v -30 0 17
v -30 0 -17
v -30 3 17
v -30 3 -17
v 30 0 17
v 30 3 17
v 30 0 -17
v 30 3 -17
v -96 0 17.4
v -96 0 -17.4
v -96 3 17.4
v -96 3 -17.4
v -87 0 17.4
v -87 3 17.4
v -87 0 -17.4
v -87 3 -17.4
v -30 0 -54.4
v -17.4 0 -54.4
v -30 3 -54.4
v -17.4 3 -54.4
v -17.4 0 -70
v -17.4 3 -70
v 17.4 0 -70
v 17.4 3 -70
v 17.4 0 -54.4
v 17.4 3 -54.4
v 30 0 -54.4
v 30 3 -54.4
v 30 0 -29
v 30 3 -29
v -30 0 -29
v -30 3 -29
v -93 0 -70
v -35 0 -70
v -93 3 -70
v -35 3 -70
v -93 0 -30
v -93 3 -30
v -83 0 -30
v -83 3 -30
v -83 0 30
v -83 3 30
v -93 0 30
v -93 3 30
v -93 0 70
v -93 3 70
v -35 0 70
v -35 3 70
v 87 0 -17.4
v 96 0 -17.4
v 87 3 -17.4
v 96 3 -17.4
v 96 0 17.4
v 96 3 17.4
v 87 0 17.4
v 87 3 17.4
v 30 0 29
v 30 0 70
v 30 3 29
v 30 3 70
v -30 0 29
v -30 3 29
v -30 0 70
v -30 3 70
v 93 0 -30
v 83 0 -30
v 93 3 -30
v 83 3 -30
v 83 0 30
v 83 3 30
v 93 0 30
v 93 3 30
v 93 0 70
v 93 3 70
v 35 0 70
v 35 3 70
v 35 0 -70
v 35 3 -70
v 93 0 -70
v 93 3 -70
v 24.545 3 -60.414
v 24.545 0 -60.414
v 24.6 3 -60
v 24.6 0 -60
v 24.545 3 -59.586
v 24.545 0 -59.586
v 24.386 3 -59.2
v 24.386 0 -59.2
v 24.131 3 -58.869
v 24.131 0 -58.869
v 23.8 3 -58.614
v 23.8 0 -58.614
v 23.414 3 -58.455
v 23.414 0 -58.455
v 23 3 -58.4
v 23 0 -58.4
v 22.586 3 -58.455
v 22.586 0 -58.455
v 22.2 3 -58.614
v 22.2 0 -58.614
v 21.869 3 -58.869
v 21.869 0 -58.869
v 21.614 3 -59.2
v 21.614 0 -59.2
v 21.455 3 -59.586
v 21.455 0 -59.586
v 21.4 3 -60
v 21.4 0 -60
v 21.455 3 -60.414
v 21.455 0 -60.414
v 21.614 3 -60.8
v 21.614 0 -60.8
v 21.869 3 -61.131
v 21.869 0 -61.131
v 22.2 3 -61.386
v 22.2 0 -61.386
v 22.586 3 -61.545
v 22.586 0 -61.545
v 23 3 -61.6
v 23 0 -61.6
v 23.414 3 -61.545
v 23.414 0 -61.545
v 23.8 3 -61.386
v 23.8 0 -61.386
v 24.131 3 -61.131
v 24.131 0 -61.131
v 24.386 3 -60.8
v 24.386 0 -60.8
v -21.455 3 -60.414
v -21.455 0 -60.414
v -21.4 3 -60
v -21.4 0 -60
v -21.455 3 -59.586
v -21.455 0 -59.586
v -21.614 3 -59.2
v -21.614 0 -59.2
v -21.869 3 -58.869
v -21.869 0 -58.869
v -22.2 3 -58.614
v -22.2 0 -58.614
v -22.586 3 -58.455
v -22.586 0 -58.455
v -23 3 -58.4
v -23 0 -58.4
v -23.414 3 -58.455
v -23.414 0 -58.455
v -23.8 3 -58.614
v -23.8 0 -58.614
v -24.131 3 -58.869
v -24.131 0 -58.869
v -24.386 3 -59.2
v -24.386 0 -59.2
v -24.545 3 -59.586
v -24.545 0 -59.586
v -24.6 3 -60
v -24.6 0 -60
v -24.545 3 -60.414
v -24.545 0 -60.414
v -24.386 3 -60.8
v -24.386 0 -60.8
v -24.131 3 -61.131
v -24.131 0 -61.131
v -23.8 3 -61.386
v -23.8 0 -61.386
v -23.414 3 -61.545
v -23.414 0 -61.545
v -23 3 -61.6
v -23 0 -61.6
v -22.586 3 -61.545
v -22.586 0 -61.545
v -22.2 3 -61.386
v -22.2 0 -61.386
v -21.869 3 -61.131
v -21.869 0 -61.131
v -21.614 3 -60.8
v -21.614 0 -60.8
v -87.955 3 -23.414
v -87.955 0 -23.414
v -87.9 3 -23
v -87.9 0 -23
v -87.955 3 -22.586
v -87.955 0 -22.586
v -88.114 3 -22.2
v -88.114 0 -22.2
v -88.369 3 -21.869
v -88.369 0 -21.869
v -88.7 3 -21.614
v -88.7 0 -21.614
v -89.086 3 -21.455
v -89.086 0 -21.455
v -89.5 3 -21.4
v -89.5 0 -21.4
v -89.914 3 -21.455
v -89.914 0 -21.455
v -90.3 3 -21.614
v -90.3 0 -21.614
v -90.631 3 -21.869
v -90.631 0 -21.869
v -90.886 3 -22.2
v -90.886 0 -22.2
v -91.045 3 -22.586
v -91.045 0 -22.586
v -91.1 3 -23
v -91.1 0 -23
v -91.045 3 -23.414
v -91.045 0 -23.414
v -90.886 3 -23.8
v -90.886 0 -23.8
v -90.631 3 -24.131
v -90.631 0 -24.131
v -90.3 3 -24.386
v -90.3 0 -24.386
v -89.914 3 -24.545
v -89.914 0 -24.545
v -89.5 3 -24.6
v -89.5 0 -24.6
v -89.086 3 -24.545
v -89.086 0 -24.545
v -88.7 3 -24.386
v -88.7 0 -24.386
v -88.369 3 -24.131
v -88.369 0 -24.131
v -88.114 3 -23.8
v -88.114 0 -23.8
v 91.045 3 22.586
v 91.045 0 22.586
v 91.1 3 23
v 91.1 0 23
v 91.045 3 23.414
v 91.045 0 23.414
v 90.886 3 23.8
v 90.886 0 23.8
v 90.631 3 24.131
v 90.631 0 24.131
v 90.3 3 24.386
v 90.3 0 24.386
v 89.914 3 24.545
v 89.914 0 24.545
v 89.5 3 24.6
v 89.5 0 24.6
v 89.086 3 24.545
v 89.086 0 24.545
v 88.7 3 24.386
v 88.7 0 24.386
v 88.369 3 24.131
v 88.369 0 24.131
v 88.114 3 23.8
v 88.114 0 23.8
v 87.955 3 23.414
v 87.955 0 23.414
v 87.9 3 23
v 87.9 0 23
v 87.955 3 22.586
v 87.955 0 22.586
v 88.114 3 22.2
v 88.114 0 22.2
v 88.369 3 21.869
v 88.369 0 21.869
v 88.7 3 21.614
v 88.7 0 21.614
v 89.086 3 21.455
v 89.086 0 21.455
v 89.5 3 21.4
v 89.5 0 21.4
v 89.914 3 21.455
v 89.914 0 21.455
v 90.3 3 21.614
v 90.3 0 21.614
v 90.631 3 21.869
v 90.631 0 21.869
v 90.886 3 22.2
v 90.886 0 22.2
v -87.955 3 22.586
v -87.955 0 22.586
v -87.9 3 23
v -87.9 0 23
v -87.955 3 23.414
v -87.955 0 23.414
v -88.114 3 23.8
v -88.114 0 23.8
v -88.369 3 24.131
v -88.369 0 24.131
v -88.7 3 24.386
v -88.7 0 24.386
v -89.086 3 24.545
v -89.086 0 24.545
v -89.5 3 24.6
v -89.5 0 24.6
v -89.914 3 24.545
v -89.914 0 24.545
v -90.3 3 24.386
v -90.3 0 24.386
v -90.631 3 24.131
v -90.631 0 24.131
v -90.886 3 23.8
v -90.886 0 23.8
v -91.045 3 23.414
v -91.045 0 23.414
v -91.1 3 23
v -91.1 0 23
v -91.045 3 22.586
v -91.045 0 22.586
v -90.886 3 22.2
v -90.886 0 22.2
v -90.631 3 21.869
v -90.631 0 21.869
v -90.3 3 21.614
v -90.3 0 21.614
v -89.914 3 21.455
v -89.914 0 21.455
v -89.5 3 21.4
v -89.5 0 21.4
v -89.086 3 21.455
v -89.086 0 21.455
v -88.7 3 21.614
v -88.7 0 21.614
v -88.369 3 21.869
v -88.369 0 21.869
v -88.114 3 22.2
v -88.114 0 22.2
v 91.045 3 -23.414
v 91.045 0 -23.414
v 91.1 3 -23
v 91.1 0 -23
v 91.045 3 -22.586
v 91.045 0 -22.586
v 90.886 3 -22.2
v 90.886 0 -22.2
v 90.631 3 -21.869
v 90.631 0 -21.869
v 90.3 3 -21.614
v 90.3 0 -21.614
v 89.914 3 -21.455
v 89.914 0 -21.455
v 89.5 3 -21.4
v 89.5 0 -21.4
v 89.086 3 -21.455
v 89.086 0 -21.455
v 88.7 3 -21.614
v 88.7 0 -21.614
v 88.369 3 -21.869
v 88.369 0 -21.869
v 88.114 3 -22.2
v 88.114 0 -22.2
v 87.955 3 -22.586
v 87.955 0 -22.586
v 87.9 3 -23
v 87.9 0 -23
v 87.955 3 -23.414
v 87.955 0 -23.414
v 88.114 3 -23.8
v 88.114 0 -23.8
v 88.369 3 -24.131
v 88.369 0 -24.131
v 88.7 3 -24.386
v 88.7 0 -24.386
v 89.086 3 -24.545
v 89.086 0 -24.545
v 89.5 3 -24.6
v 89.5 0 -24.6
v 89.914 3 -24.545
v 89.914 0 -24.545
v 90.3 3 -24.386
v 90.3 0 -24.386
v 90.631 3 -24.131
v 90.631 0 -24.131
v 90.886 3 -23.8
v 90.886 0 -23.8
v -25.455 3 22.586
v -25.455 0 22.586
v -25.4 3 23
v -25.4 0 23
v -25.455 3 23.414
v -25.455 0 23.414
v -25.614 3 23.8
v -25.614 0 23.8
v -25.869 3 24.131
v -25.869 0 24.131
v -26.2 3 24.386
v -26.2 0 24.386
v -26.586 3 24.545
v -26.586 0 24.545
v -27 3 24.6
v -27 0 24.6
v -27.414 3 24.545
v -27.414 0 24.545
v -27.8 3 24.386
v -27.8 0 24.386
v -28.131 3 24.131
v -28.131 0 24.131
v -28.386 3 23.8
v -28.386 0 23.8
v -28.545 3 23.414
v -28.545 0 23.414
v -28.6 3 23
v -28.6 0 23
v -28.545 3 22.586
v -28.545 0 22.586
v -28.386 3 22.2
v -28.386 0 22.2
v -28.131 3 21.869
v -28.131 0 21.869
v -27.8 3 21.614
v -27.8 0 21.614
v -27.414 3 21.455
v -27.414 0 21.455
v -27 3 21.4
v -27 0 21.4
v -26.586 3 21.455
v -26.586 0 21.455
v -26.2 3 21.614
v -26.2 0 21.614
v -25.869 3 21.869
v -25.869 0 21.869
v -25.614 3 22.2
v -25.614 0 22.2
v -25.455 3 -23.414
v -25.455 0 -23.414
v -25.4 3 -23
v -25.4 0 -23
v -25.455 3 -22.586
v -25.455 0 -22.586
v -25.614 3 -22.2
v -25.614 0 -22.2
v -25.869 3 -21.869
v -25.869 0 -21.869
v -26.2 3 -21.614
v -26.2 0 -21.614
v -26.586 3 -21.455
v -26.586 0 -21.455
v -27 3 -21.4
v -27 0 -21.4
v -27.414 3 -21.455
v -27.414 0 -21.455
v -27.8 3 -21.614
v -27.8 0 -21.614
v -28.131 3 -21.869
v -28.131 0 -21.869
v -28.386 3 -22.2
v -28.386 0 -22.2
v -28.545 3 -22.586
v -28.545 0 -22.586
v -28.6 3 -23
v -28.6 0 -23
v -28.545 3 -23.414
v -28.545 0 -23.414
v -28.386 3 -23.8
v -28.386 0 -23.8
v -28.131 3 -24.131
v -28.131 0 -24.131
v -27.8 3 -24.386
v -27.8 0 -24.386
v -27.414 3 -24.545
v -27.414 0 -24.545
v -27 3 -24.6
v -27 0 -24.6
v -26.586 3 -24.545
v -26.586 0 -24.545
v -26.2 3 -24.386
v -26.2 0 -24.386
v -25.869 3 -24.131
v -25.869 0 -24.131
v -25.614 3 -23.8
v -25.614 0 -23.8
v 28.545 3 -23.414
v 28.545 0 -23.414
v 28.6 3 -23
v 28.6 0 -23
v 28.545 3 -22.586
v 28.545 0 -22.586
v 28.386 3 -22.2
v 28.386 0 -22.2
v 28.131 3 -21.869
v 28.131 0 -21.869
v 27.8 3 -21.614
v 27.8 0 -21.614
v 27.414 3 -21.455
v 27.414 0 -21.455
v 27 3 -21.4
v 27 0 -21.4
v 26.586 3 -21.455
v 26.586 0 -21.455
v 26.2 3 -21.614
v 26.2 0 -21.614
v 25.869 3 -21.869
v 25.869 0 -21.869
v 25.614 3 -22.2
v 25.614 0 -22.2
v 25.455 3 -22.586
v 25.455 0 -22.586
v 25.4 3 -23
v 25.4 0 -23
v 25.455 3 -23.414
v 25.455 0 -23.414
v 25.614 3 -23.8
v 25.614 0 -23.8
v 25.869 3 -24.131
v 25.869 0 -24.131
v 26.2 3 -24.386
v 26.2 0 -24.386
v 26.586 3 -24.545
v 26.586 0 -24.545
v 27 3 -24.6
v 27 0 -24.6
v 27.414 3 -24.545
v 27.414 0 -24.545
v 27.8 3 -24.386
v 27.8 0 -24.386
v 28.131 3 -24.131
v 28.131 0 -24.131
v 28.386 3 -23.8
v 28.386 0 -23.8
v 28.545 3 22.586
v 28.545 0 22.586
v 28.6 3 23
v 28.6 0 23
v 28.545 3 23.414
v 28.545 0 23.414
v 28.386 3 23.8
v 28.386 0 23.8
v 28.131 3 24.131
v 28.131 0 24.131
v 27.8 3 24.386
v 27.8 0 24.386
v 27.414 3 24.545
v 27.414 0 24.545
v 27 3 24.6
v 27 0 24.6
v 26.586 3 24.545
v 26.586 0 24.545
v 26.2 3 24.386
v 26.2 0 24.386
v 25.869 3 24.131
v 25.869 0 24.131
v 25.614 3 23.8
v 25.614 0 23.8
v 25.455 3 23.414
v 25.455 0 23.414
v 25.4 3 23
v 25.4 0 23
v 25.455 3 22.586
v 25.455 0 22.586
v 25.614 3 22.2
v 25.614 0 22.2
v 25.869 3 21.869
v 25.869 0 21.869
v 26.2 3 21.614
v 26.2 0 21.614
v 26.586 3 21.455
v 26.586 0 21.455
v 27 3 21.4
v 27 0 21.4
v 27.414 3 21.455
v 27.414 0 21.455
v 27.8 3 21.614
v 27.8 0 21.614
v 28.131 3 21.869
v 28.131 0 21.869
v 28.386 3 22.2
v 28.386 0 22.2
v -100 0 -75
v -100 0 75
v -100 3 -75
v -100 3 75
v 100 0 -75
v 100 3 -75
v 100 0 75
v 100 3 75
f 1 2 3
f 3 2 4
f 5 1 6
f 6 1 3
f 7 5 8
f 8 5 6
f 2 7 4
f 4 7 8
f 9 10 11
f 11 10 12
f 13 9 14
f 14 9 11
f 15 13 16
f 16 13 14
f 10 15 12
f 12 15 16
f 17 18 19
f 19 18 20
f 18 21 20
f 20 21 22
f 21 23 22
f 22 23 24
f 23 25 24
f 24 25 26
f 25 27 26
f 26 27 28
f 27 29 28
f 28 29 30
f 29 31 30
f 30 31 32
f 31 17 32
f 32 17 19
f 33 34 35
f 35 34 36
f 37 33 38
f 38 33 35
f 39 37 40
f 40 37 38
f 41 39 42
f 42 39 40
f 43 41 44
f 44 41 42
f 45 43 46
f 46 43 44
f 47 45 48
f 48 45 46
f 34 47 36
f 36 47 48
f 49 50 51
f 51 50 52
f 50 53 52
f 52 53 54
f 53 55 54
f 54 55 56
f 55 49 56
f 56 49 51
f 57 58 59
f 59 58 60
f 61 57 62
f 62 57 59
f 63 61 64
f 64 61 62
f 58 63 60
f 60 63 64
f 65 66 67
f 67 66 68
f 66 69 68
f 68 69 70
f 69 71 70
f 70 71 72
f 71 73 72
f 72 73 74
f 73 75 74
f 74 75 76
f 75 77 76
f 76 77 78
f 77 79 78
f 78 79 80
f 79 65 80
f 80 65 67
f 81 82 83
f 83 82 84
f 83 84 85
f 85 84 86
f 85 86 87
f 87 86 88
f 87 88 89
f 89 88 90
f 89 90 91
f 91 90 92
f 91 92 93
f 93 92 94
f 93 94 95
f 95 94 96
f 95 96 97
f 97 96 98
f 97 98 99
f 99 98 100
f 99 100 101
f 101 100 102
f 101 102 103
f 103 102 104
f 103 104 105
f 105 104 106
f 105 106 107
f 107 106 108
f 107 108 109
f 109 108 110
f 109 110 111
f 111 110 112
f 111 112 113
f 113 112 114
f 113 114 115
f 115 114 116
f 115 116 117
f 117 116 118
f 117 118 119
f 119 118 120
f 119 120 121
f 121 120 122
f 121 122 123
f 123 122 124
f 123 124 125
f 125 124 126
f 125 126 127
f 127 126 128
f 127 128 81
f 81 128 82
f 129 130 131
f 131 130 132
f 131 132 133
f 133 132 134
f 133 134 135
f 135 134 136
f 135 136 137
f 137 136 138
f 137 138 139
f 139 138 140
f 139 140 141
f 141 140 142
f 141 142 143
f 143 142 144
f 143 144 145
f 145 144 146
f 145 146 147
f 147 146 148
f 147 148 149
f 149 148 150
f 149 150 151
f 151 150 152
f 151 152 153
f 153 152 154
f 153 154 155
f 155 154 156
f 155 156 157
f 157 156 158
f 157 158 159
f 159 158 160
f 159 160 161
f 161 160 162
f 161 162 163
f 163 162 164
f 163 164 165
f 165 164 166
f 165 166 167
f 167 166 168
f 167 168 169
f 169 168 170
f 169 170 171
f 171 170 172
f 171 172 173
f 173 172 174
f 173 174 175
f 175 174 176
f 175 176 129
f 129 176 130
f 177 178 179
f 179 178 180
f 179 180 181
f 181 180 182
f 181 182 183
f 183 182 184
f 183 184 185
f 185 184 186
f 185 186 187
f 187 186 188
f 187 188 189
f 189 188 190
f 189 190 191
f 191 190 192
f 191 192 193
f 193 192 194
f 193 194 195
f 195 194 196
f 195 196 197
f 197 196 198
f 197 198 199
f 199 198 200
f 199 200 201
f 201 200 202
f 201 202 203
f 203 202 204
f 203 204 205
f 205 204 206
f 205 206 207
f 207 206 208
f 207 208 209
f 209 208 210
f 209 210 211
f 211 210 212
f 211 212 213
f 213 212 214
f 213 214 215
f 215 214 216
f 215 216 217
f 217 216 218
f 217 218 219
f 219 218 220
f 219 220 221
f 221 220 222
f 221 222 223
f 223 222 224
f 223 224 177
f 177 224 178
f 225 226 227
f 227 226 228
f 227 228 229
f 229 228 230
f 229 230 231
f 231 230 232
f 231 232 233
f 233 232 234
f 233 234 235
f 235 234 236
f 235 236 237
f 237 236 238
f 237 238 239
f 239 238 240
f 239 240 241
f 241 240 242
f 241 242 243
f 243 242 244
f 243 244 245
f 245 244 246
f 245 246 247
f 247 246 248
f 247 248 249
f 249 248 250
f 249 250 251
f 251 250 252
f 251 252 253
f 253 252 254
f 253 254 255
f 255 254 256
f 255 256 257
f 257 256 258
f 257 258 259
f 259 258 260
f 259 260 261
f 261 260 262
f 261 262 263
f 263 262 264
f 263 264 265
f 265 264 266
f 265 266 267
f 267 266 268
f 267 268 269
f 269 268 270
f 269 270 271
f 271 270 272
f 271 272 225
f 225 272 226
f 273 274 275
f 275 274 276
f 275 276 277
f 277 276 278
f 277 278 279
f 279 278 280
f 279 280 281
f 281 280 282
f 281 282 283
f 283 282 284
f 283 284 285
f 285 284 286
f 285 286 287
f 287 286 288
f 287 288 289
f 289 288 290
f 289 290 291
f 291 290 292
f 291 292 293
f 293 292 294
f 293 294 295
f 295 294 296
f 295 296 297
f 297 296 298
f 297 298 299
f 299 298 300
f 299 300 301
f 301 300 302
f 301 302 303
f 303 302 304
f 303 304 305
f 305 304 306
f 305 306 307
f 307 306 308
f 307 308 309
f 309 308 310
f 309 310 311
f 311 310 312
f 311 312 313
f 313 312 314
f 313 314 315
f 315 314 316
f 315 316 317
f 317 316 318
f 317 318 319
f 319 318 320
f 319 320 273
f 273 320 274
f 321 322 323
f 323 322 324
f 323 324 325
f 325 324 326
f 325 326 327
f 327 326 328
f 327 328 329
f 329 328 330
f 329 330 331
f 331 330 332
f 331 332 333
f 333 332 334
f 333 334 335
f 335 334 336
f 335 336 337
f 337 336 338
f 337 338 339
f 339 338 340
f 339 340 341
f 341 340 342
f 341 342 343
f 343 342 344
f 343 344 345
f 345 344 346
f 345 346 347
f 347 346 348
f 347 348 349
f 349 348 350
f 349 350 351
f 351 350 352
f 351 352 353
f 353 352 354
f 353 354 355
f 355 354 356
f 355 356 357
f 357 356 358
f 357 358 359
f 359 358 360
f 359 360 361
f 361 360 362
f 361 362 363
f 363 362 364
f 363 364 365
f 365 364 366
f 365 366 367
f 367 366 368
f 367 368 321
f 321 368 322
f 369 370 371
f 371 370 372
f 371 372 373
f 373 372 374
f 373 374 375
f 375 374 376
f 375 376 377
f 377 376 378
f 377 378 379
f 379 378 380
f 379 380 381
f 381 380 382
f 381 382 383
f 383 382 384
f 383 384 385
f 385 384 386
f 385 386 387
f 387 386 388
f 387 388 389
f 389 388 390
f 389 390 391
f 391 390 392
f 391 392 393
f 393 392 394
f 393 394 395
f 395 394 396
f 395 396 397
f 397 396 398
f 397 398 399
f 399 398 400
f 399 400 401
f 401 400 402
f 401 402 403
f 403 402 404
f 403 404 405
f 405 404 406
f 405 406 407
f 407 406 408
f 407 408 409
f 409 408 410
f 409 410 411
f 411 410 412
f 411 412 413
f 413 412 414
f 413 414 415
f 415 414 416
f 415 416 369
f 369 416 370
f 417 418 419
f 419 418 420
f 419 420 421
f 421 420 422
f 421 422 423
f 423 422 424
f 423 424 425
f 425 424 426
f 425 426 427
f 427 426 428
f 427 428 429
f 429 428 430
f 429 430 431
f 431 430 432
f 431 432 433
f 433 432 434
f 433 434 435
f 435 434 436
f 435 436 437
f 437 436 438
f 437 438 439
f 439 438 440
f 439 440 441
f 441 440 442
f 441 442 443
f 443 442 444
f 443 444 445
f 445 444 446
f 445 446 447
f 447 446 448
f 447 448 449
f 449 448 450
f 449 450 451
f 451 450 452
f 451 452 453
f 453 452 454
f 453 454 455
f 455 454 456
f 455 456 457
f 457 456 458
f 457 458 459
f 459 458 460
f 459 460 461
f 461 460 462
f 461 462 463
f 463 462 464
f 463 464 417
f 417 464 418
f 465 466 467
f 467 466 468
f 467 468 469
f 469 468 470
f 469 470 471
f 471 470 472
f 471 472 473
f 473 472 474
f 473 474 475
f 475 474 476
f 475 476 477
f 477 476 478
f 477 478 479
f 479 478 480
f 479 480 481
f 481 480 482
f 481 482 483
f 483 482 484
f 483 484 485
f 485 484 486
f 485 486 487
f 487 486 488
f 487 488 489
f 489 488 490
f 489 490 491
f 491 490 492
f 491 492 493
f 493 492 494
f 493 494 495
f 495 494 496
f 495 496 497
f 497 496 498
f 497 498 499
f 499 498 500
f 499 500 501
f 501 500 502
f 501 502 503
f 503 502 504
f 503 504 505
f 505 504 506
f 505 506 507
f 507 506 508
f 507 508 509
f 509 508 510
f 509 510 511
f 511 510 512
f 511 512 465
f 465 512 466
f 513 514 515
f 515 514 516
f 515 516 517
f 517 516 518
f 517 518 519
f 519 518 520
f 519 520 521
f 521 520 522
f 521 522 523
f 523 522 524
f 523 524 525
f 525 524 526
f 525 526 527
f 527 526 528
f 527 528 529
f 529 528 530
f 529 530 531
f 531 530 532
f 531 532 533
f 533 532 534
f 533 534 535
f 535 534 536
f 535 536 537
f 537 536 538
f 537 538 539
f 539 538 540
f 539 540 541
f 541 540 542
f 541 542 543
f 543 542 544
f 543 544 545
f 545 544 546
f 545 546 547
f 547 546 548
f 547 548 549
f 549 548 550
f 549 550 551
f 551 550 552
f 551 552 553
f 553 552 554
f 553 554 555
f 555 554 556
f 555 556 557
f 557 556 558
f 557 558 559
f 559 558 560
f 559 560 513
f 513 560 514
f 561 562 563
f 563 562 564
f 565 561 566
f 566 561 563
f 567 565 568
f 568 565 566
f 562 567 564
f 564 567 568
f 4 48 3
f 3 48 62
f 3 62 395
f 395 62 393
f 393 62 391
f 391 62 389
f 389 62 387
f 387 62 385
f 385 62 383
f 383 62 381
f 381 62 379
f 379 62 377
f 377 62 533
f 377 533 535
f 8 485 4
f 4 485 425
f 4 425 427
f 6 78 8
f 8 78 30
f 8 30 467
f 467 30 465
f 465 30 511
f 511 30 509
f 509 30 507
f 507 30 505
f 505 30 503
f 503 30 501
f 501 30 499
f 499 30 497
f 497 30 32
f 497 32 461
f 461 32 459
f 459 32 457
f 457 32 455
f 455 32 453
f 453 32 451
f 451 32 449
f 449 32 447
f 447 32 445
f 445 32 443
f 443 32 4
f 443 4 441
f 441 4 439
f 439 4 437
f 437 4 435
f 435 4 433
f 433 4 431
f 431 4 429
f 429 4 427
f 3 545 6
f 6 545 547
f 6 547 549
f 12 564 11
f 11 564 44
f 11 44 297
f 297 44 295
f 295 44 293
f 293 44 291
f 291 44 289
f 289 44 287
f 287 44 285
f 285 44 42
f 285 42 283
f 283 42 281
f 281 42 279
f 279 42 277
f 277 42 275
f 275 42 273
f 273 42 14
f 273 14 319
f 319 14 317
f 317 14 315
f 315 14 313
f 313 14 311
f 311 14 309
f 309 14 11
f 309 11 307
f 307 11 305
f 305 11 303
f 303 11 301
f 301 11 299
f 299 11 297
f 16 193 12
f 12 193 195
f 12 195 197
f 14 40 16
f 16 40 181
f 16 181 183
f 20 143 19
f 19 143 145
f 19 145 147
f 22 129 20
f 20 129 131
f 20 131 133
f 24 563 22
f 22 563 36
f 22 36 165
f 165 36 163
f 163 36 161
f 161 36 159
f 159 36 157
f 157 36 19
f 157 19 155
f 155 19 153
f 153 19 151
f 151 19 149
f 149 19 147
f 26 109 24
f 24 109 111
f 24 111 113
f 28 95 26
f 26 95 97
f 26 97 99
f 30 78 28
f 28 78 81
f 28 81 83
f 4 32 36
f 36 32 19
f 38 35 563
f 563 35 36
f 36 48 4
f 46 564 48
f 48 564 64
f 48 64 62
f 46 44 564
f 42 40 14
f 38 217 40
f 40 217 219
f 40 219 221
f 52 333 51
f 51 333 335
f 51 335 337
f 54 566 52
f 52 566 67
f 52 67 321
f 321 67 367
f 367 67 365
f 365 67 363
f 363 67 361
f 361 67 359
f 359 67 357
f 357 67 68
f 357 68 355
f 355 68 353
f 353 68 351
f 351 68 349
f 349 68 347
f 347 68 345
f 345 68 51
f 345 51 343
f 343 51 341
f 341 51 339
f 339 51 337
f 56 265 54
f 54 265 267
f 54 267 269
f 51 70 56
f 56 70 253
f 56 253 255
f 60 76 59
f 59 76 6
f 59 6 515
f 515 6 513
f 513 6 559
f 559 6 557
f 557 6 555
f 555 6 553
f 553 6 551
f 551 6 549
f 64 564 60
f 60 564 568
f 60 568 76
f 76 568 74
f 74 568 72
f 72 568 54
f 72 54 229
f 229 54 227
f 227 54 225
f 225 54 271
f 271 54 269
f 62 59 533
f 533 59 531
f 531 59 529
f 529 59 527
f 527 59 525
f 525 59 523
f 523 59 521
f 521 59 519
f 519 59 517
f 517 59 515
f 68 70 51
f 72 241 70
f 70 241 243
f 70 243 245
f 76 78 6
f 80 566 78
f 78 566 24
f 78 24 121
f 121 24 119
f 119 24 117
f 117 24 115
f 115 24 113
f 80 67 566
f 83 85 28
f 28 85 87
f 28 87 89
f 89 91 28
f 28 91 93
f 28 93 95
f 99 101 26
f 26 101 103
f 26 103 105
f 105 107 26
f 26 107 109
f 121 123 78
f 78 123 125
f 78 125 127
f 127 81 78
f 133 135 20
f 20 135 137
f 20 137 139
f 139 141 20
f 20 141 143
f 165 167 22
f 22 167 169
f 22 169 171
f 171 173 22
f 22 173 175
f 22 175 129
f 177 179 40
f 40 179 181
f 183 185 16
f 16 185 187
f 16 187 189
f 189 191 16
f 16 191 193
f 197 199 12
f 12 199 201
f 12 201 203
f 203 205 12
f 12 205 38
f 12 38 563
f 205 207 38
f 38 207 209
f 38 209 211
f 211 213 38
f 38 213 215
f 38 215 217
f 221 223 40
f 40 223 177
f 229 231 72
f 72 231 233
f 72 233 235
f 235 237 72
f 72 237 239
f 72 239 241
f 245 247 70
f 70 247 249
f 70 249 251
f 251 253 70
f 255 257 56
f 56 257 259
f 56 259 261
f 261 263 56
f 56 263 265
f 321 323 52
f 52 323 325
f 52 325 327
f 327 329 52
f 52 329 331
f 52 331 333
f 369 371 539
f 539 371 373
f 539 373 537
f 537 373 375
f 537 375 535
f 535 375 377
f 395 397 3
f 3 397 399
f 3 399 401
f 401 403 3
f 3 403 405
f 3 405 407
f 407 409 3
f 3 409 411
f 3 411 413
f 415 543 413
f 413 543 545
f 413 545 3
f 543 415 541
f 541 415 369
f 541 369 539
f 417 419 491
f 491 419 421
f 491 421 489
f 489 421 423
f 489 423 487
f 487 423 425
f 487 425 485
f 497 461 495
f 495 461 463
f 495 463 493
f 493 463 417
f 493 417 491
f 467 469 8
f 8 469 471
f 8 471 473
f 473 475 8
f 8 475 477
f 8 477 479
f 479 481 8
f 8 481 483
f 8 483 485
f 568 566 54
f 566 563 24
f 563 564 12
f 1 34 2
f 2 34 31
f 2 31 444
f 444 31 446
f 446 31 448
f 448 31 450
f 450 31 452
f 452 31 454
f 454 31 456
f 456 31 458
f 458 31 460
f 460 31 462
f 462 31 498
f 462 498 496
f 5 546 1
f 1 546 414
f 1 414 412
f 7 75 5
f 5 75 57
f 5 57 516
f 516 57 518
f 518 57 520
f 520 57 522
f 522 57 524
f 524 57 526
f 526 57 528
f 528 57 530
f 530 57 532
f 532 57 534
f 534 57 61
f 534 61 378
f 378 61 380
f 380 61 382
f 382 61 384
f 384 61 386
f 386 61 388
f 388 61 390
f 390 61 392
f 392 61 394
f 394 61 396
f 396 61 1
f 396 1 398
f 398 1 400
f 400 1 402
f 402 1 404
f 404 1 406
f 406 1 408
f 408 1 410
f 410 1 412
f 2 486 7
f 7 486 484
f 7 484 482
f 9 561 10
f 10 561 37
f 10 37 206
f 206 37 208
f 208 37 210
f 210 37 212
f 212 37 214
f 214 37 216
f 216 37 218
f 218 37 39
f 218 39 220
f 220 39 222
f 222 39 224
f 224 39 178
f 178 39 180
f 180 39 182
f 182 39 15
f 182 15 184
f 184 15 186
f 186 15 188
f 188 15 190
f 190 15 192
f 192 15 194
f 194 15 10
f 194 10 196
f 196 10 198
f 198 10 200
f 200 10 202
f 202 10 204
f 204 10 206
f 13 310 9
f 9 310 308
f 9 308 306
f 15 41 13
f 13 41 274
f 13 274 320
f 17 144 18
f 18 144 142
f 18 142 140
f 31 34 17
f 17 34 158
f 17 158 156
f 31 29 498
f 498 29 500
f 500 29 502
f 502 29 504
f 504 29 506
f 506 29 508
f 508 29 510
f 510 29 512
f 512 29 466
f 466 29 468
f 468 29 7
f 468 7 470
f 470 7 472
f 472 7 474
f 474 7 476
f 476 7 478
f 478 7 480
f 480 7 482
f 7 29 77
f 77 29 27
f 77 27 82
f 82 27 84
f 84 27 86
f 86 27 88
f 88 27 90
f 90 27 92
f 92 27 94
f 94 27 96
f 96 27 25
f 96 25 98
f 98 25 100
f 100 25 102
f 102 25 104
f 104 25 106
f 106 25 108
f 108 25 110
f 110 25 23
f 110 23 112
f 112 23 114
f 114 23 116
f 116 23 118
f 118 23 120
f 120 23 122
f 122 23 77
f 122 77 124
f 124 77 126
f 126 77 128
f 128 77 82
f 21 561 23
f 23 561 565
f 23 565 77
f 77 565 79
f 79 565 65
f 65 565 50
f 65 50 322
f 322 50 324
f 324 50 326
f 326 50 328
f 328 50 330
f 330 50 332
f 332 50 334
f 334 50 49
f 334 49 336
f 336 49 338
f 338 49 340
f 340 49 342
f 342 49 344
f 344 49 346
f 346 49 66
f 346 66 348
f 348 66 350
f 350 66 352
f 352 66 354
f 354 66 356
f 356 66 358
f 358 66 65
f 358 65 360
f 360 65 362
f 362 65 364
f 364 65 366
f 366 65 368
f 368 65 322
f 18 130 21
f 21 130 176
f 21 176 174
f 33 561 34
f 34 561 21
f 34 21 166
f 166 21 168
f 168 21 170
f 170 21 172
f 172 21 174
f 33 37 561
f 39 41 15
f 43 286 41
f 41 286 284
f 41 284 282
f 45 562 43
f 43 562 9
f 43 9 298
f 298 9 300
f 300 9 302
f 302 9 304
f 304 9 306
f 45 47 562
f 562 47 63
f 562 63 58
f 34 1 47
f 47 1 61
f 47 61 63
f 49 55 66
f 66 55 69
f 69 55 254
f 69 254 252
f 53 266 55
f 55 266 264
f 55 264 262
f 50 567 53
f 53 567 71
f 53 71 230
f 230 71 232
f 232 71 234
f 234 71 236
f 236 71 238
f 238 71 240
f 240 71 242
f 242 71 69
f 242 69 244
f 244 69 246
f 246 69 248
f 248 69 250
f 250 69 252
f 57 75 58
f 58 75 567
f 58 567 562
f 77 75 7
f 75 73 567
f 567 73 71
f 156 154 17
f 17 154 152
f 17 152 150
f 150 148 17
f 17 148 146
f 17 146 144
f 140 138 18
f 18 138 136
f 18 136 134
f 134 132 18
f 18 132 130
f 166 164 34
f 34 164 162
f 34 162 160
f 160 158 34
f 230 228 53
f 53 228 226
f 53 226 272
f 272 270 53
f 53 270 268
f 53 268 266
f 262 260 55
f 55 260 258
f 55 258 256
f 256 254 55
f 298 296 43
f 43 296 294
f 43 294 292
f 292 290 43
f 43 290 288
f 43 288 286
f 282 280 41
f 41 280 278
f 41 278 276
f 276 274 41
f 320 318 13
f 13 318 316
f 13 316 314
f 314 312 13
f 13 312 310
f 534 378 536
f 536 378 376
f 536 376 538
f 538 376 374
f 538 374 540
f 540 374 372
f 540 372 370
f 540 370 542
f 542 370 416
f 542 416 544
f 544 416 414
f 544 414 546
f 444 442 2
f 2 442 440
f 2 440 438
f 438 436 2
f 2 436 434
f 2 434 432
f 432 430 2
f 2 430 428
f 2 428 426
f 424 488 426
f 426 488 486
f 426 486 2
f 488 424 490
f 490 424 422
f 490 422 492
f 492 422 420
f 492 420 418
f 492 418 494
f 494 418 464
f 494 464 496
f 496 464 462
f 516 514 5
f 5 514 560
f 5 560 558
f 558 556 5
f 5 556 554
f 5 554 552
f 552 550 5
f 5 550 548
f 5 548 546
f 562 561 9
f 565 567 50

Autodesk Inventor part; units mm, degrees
ref_plane "YZ Plane" through (0, 0, 0) normal (1, 0, 0) x (0, 1, 0)
ref_plane "XZ Plane" through (0, 0, 0) normal (0, 1, 0) x (-1, 0, 0)
ref_plane "XY Plane" through (0, 0, 0) normal (0, 0, 1) x (1, 0, 0)
sketch "Skizze1" plane through (0, 0, 0) normal (0, 1, 0) x (-1, 0, 0)
  line L0 (100, -75) -> (-100, -75)
  line L1 (-100, -75) -> (-100, 75)
  line L2 (-100, 75) -> (100, 75)
  line L3 (100, 75) -> (100, -75)
  line L4 (0, -105) -> (0, 105) projected
  line L5 (-140, 0) -> (140, 0) projected
  point P0 (0, 0)
  dimension "d0" = 200
  dimension "d1" = 150
extrude "Extrusion1" add sketch "Skizze1" along normal blind 3
sketch "Skizze11" plane through (0, 3, 0) normal (0, 1, 0) x (1, 0, 0)
  circle A0 centre (27, -23) radius 1.6
  circle A1 centre (27, 23) radius 1.6
  line L0 (140, 0) -> (-140, 0) projected
  line L1 (100, -75) -> (100, 75) projected
  line L2 (100, -75) -> (100, 75) projected
  line L3 (0, 105) -> (0, -105) projected
  circle A2 centre (-27, -23) radius 1.6
  circle A3 centre (-27, 23) radius 1.6
  circle A4 centre (27, 23) radius 1.6
  circle A5 centre (-27, 23) radius 1.6
  line L4 (100, 75) -> (-100, 75) projected
  circle A6 centre (89.5, -23) radius 1.6
  circle A7 centre (89.5, 23) radius 1.6
  circle A8 centre (-89.5, -23) radius 1.6
  circle A9 centre (-89.5, 23) radius 1.6
  line L5 (-100, 75) -> (-100, -75) projected
  point P0 (0, 0)
  dimension "d50" = 3.2
  dimension "d51" = 3.2
  dimension "d52" = 23
  dimension "d53" = 23
  dimension "d54" = 73
  dimension "d55" = 73
  dimension "d62" = 3.2
  dimension "d63" = 3.2
  dimension "d64" = 27
  dimension "d65" = 27
  dimension "d66" = 52
  dimension "d67" = 52
  dimension "d70" = 3.2
  dimension "d71" = 3.2
  dimension "d72" = 23
  dimension "d73" = 23
  dimension "d74" = 10.5
  dimension "d75" = 10.5
  dimension "d76" = 3.2
  dimension "d77" = 3.2
  dimension "d78" = 10.5
  dimension "d79" = 10.5
  dimension "d80" = 23
  dimension "d81" = 23
extrude "Extrusion12" cut sketch "Skizze11" against normal up to surface (3 mm away) contours A0 | A1
extrude "Extrusion13" cut sketch "Skizze11" against normal up to surface (3 mm away) contours A2 | A3
extrude "Extrusion14" cut sketch "Skizze11" against normal up to surface (3 mm away) contours A1 | A3
extrude "Extrusion15" cut sketch "Skizze11" against normal up to surface (3 mm away) contours A6 | A7 | A8 | A9
sketch "Skizze12" plane through (0, 3, 0) normal (0, 1, 0) x (1, 0, 0)
  circle A0 centre (-23, 60) radius 1.6
  circle A1 centre (23, 60) radius 1.6
  line L0 (0, 105) -> (0, -105) projected
  line L1 (100, 75) -> (-100, 75) projected
  point P0 (0, 0)
  dimension "d84" = 3.2
  dimension "d85" = 3.2
  dimension "d86" = 23
  dimension "d87" = 23
  dimension "d88" = 15
  dimension "d89" = 15
extrude "Extrusion16" cut sketch "Skizze12" against normal up to surface (3 mm away)
sketch "Skizze13" plane through (0, 3, 0) normal (0, 1, 0) x (1, 0, 0)
  line L0 (-93, -70) -> (-35, -70)
  line L1 (-35, -70) -> (-35, 70)
  line L2 (-35, 70) -> (-93, 70)
  line L3 (35, -70) -> (93, -70)
  line L4 (93, 70) -> (35, 70)
  line L5 (35, 70) -> (35, -70)
  line L6 (-100, -75) -> (100, -75) projected
  line L7 (-100, 75) -> (-100, -75) projected
  line L8 (100, 75) -> (-100, 75) projected
  line L9 (100, -75) -> (100, 75) projected
  line L10 (-30, -70) -> (30, -70)
  line L11 (35, -70) -> (35, -30)
  line L12 (30, -29) -> (-30, -29)
  line L13 (-35, -30) -> (-35, -70)
  line L14 (-30, 29) -> (30, 29)
  line L15 (35, 29) -> (35, 54)
  line L16 (-35, 54) -> (-35, 29)
  line L17 (-30, -70) -> (-30, -29)
  line L18 (30, -70) -> (30, -29)
  line L19 (-30, 29) -> (-30, 54.4)
  line L20 (30, 29) -> (30, 54.4)
  line L21 (-93, 30) -> (-83, 30)
  line L22 (-83, 30) -> (-83, -30)
  line L23 (-83, -30) -> (-93, -30)
  line L24 (140, 0) -> (-140, 0) projected
  line L25 (-93, 70) -> (-93, 30)
  line L26 (-93, -30) -> (-93, -70)
  line L27 (93, 30) -> (83, 30)
  line L28 (83, 30) -> (83, -30)
  line L29 (83, -30) -> (93, -30)
  line L30 (93, -70) -> (93, -30)
  line L31 (93, 30) -> (93, 70)
  line L32 (-30, 17) -> (30, 17)
  line L33 (30, 17) -> (30, -17)
  line L34 (30, -17) -> (-30, -17)
  line L35 (-30, -17) -> (-30, 17)
  line L36 (-30, 17) -> (30, -17) construction
  line L37 (30, 17) -> (-30, -17) construction
  line L38 (-17.4, 70) -> (17.4, 70)
  line L39 (17.4, 70) -> (17.4, 54.4)
  line L40 (-17.4, 54.4) -> (-17.4, 70)
  line L41 (-17.4, 70) -> (17.4, 54.3035) construction
  line L42 (17.4, 70) -> (-17.4, 54.3035) construction
  line L43 (30, 54.4) -> (17.4, 54.4)
  line L44 (-17.4, 54.4) -> (-30, 54.4)
  circle A0 centre (-23, 60) radius 1.6 projected
  circle A1 centre (23, 60) radius 1.6 projected
  line L45 (87, 17.4) -> (96, 17.4)
  line L46 (96, 17.4) -> (96, -17.4)
  line L47 (96, -17.4) -> (87, -17.4)
  line L48 (87, -17.4) -> (87, 17.4)
  line L49 (87, 17.4) -> (96, -17.4) construction
  line L50 (96, 17.4) -> (87, -17.4) construction
  circle A2 centre (89.5, -23) radius 1.6 projected
  line L51 (-96, 17.4) -> (-87, 17.4)
  line L52 (-87, 17.4) -> (-87, -17.4)
  line L53 (-87, -17.4) -> (-96, -17.4)
  line L54 (-96, -17.4) -> (-96, 17.4)
  line L55 (-96, 17.4) -> (-87, -17.4) construction
  line L56 (-87, 17.4) -> (-96, -17.4) construction
  circle A3 centre (-89.5, 23) radius 1.6 projected
  point P0 (0, 0)
  point P1 (0, 62.1518)
  point P2 (91.5, 0)
  point P3 (-91.5, 0)
  dimension "d94" = 5
  dimension "d96" = 5
  dimension "d97" = 65
  dimension "d99" = 65
  dimension "d100" = 40
  dimension "d101" = 25
  dimension "d103" = 5
  dimension "d104" = 5
  dimension "d105" = 5
  dimension "d106" = 5
  dimension "d107" = 10
  dimension "d108" = 60
  dimension "d109" = 17
  dimension "d110" = 7
  dimension "d111" = 10
  dimension "d112" = 60
  dimension "d113" = 17
  dimension "d114" = 7
  dimension "d115" = 5
  dimension "d116" = 12
  dimension "d117" = 17
  dimension "d118" = 12
  dimension "d119" = 5
  dimension "d120" = 5
  dimension "d121" = 4
  dimension "d122" = 4
  dimension "d123" = 4
  dimension "d124" = 4
  dimension "d126" = 5.6
  dimension "d127" = 4
  dimension "d128" = 4
  dimension "d129" = 4
  dimension "d130" = 4
  dimension "d131" = 4
extrude "Extrusion17" cut sketch "Skizze13" against normal up to surface (3 mm away) contours L26 L23 L22 L24 L1 L0 | L24 L22 L21 L25 L2 L1 | L35 L32 L33 L24 | L24 L33 L34 L35 | L52 L53 L54 L24 | L24 L54 L51 L52 | L24 L28 L29 L30 L3 L5 | L5 L4 L31 L27 L28 L24 | L48 L45 L46 L24 | L24 L46 L47 L48 | L17 L12 L18 L10 | L19 L44 L40 L38 L39 L43 L20 L14
properties part number "_3D-Druck"
